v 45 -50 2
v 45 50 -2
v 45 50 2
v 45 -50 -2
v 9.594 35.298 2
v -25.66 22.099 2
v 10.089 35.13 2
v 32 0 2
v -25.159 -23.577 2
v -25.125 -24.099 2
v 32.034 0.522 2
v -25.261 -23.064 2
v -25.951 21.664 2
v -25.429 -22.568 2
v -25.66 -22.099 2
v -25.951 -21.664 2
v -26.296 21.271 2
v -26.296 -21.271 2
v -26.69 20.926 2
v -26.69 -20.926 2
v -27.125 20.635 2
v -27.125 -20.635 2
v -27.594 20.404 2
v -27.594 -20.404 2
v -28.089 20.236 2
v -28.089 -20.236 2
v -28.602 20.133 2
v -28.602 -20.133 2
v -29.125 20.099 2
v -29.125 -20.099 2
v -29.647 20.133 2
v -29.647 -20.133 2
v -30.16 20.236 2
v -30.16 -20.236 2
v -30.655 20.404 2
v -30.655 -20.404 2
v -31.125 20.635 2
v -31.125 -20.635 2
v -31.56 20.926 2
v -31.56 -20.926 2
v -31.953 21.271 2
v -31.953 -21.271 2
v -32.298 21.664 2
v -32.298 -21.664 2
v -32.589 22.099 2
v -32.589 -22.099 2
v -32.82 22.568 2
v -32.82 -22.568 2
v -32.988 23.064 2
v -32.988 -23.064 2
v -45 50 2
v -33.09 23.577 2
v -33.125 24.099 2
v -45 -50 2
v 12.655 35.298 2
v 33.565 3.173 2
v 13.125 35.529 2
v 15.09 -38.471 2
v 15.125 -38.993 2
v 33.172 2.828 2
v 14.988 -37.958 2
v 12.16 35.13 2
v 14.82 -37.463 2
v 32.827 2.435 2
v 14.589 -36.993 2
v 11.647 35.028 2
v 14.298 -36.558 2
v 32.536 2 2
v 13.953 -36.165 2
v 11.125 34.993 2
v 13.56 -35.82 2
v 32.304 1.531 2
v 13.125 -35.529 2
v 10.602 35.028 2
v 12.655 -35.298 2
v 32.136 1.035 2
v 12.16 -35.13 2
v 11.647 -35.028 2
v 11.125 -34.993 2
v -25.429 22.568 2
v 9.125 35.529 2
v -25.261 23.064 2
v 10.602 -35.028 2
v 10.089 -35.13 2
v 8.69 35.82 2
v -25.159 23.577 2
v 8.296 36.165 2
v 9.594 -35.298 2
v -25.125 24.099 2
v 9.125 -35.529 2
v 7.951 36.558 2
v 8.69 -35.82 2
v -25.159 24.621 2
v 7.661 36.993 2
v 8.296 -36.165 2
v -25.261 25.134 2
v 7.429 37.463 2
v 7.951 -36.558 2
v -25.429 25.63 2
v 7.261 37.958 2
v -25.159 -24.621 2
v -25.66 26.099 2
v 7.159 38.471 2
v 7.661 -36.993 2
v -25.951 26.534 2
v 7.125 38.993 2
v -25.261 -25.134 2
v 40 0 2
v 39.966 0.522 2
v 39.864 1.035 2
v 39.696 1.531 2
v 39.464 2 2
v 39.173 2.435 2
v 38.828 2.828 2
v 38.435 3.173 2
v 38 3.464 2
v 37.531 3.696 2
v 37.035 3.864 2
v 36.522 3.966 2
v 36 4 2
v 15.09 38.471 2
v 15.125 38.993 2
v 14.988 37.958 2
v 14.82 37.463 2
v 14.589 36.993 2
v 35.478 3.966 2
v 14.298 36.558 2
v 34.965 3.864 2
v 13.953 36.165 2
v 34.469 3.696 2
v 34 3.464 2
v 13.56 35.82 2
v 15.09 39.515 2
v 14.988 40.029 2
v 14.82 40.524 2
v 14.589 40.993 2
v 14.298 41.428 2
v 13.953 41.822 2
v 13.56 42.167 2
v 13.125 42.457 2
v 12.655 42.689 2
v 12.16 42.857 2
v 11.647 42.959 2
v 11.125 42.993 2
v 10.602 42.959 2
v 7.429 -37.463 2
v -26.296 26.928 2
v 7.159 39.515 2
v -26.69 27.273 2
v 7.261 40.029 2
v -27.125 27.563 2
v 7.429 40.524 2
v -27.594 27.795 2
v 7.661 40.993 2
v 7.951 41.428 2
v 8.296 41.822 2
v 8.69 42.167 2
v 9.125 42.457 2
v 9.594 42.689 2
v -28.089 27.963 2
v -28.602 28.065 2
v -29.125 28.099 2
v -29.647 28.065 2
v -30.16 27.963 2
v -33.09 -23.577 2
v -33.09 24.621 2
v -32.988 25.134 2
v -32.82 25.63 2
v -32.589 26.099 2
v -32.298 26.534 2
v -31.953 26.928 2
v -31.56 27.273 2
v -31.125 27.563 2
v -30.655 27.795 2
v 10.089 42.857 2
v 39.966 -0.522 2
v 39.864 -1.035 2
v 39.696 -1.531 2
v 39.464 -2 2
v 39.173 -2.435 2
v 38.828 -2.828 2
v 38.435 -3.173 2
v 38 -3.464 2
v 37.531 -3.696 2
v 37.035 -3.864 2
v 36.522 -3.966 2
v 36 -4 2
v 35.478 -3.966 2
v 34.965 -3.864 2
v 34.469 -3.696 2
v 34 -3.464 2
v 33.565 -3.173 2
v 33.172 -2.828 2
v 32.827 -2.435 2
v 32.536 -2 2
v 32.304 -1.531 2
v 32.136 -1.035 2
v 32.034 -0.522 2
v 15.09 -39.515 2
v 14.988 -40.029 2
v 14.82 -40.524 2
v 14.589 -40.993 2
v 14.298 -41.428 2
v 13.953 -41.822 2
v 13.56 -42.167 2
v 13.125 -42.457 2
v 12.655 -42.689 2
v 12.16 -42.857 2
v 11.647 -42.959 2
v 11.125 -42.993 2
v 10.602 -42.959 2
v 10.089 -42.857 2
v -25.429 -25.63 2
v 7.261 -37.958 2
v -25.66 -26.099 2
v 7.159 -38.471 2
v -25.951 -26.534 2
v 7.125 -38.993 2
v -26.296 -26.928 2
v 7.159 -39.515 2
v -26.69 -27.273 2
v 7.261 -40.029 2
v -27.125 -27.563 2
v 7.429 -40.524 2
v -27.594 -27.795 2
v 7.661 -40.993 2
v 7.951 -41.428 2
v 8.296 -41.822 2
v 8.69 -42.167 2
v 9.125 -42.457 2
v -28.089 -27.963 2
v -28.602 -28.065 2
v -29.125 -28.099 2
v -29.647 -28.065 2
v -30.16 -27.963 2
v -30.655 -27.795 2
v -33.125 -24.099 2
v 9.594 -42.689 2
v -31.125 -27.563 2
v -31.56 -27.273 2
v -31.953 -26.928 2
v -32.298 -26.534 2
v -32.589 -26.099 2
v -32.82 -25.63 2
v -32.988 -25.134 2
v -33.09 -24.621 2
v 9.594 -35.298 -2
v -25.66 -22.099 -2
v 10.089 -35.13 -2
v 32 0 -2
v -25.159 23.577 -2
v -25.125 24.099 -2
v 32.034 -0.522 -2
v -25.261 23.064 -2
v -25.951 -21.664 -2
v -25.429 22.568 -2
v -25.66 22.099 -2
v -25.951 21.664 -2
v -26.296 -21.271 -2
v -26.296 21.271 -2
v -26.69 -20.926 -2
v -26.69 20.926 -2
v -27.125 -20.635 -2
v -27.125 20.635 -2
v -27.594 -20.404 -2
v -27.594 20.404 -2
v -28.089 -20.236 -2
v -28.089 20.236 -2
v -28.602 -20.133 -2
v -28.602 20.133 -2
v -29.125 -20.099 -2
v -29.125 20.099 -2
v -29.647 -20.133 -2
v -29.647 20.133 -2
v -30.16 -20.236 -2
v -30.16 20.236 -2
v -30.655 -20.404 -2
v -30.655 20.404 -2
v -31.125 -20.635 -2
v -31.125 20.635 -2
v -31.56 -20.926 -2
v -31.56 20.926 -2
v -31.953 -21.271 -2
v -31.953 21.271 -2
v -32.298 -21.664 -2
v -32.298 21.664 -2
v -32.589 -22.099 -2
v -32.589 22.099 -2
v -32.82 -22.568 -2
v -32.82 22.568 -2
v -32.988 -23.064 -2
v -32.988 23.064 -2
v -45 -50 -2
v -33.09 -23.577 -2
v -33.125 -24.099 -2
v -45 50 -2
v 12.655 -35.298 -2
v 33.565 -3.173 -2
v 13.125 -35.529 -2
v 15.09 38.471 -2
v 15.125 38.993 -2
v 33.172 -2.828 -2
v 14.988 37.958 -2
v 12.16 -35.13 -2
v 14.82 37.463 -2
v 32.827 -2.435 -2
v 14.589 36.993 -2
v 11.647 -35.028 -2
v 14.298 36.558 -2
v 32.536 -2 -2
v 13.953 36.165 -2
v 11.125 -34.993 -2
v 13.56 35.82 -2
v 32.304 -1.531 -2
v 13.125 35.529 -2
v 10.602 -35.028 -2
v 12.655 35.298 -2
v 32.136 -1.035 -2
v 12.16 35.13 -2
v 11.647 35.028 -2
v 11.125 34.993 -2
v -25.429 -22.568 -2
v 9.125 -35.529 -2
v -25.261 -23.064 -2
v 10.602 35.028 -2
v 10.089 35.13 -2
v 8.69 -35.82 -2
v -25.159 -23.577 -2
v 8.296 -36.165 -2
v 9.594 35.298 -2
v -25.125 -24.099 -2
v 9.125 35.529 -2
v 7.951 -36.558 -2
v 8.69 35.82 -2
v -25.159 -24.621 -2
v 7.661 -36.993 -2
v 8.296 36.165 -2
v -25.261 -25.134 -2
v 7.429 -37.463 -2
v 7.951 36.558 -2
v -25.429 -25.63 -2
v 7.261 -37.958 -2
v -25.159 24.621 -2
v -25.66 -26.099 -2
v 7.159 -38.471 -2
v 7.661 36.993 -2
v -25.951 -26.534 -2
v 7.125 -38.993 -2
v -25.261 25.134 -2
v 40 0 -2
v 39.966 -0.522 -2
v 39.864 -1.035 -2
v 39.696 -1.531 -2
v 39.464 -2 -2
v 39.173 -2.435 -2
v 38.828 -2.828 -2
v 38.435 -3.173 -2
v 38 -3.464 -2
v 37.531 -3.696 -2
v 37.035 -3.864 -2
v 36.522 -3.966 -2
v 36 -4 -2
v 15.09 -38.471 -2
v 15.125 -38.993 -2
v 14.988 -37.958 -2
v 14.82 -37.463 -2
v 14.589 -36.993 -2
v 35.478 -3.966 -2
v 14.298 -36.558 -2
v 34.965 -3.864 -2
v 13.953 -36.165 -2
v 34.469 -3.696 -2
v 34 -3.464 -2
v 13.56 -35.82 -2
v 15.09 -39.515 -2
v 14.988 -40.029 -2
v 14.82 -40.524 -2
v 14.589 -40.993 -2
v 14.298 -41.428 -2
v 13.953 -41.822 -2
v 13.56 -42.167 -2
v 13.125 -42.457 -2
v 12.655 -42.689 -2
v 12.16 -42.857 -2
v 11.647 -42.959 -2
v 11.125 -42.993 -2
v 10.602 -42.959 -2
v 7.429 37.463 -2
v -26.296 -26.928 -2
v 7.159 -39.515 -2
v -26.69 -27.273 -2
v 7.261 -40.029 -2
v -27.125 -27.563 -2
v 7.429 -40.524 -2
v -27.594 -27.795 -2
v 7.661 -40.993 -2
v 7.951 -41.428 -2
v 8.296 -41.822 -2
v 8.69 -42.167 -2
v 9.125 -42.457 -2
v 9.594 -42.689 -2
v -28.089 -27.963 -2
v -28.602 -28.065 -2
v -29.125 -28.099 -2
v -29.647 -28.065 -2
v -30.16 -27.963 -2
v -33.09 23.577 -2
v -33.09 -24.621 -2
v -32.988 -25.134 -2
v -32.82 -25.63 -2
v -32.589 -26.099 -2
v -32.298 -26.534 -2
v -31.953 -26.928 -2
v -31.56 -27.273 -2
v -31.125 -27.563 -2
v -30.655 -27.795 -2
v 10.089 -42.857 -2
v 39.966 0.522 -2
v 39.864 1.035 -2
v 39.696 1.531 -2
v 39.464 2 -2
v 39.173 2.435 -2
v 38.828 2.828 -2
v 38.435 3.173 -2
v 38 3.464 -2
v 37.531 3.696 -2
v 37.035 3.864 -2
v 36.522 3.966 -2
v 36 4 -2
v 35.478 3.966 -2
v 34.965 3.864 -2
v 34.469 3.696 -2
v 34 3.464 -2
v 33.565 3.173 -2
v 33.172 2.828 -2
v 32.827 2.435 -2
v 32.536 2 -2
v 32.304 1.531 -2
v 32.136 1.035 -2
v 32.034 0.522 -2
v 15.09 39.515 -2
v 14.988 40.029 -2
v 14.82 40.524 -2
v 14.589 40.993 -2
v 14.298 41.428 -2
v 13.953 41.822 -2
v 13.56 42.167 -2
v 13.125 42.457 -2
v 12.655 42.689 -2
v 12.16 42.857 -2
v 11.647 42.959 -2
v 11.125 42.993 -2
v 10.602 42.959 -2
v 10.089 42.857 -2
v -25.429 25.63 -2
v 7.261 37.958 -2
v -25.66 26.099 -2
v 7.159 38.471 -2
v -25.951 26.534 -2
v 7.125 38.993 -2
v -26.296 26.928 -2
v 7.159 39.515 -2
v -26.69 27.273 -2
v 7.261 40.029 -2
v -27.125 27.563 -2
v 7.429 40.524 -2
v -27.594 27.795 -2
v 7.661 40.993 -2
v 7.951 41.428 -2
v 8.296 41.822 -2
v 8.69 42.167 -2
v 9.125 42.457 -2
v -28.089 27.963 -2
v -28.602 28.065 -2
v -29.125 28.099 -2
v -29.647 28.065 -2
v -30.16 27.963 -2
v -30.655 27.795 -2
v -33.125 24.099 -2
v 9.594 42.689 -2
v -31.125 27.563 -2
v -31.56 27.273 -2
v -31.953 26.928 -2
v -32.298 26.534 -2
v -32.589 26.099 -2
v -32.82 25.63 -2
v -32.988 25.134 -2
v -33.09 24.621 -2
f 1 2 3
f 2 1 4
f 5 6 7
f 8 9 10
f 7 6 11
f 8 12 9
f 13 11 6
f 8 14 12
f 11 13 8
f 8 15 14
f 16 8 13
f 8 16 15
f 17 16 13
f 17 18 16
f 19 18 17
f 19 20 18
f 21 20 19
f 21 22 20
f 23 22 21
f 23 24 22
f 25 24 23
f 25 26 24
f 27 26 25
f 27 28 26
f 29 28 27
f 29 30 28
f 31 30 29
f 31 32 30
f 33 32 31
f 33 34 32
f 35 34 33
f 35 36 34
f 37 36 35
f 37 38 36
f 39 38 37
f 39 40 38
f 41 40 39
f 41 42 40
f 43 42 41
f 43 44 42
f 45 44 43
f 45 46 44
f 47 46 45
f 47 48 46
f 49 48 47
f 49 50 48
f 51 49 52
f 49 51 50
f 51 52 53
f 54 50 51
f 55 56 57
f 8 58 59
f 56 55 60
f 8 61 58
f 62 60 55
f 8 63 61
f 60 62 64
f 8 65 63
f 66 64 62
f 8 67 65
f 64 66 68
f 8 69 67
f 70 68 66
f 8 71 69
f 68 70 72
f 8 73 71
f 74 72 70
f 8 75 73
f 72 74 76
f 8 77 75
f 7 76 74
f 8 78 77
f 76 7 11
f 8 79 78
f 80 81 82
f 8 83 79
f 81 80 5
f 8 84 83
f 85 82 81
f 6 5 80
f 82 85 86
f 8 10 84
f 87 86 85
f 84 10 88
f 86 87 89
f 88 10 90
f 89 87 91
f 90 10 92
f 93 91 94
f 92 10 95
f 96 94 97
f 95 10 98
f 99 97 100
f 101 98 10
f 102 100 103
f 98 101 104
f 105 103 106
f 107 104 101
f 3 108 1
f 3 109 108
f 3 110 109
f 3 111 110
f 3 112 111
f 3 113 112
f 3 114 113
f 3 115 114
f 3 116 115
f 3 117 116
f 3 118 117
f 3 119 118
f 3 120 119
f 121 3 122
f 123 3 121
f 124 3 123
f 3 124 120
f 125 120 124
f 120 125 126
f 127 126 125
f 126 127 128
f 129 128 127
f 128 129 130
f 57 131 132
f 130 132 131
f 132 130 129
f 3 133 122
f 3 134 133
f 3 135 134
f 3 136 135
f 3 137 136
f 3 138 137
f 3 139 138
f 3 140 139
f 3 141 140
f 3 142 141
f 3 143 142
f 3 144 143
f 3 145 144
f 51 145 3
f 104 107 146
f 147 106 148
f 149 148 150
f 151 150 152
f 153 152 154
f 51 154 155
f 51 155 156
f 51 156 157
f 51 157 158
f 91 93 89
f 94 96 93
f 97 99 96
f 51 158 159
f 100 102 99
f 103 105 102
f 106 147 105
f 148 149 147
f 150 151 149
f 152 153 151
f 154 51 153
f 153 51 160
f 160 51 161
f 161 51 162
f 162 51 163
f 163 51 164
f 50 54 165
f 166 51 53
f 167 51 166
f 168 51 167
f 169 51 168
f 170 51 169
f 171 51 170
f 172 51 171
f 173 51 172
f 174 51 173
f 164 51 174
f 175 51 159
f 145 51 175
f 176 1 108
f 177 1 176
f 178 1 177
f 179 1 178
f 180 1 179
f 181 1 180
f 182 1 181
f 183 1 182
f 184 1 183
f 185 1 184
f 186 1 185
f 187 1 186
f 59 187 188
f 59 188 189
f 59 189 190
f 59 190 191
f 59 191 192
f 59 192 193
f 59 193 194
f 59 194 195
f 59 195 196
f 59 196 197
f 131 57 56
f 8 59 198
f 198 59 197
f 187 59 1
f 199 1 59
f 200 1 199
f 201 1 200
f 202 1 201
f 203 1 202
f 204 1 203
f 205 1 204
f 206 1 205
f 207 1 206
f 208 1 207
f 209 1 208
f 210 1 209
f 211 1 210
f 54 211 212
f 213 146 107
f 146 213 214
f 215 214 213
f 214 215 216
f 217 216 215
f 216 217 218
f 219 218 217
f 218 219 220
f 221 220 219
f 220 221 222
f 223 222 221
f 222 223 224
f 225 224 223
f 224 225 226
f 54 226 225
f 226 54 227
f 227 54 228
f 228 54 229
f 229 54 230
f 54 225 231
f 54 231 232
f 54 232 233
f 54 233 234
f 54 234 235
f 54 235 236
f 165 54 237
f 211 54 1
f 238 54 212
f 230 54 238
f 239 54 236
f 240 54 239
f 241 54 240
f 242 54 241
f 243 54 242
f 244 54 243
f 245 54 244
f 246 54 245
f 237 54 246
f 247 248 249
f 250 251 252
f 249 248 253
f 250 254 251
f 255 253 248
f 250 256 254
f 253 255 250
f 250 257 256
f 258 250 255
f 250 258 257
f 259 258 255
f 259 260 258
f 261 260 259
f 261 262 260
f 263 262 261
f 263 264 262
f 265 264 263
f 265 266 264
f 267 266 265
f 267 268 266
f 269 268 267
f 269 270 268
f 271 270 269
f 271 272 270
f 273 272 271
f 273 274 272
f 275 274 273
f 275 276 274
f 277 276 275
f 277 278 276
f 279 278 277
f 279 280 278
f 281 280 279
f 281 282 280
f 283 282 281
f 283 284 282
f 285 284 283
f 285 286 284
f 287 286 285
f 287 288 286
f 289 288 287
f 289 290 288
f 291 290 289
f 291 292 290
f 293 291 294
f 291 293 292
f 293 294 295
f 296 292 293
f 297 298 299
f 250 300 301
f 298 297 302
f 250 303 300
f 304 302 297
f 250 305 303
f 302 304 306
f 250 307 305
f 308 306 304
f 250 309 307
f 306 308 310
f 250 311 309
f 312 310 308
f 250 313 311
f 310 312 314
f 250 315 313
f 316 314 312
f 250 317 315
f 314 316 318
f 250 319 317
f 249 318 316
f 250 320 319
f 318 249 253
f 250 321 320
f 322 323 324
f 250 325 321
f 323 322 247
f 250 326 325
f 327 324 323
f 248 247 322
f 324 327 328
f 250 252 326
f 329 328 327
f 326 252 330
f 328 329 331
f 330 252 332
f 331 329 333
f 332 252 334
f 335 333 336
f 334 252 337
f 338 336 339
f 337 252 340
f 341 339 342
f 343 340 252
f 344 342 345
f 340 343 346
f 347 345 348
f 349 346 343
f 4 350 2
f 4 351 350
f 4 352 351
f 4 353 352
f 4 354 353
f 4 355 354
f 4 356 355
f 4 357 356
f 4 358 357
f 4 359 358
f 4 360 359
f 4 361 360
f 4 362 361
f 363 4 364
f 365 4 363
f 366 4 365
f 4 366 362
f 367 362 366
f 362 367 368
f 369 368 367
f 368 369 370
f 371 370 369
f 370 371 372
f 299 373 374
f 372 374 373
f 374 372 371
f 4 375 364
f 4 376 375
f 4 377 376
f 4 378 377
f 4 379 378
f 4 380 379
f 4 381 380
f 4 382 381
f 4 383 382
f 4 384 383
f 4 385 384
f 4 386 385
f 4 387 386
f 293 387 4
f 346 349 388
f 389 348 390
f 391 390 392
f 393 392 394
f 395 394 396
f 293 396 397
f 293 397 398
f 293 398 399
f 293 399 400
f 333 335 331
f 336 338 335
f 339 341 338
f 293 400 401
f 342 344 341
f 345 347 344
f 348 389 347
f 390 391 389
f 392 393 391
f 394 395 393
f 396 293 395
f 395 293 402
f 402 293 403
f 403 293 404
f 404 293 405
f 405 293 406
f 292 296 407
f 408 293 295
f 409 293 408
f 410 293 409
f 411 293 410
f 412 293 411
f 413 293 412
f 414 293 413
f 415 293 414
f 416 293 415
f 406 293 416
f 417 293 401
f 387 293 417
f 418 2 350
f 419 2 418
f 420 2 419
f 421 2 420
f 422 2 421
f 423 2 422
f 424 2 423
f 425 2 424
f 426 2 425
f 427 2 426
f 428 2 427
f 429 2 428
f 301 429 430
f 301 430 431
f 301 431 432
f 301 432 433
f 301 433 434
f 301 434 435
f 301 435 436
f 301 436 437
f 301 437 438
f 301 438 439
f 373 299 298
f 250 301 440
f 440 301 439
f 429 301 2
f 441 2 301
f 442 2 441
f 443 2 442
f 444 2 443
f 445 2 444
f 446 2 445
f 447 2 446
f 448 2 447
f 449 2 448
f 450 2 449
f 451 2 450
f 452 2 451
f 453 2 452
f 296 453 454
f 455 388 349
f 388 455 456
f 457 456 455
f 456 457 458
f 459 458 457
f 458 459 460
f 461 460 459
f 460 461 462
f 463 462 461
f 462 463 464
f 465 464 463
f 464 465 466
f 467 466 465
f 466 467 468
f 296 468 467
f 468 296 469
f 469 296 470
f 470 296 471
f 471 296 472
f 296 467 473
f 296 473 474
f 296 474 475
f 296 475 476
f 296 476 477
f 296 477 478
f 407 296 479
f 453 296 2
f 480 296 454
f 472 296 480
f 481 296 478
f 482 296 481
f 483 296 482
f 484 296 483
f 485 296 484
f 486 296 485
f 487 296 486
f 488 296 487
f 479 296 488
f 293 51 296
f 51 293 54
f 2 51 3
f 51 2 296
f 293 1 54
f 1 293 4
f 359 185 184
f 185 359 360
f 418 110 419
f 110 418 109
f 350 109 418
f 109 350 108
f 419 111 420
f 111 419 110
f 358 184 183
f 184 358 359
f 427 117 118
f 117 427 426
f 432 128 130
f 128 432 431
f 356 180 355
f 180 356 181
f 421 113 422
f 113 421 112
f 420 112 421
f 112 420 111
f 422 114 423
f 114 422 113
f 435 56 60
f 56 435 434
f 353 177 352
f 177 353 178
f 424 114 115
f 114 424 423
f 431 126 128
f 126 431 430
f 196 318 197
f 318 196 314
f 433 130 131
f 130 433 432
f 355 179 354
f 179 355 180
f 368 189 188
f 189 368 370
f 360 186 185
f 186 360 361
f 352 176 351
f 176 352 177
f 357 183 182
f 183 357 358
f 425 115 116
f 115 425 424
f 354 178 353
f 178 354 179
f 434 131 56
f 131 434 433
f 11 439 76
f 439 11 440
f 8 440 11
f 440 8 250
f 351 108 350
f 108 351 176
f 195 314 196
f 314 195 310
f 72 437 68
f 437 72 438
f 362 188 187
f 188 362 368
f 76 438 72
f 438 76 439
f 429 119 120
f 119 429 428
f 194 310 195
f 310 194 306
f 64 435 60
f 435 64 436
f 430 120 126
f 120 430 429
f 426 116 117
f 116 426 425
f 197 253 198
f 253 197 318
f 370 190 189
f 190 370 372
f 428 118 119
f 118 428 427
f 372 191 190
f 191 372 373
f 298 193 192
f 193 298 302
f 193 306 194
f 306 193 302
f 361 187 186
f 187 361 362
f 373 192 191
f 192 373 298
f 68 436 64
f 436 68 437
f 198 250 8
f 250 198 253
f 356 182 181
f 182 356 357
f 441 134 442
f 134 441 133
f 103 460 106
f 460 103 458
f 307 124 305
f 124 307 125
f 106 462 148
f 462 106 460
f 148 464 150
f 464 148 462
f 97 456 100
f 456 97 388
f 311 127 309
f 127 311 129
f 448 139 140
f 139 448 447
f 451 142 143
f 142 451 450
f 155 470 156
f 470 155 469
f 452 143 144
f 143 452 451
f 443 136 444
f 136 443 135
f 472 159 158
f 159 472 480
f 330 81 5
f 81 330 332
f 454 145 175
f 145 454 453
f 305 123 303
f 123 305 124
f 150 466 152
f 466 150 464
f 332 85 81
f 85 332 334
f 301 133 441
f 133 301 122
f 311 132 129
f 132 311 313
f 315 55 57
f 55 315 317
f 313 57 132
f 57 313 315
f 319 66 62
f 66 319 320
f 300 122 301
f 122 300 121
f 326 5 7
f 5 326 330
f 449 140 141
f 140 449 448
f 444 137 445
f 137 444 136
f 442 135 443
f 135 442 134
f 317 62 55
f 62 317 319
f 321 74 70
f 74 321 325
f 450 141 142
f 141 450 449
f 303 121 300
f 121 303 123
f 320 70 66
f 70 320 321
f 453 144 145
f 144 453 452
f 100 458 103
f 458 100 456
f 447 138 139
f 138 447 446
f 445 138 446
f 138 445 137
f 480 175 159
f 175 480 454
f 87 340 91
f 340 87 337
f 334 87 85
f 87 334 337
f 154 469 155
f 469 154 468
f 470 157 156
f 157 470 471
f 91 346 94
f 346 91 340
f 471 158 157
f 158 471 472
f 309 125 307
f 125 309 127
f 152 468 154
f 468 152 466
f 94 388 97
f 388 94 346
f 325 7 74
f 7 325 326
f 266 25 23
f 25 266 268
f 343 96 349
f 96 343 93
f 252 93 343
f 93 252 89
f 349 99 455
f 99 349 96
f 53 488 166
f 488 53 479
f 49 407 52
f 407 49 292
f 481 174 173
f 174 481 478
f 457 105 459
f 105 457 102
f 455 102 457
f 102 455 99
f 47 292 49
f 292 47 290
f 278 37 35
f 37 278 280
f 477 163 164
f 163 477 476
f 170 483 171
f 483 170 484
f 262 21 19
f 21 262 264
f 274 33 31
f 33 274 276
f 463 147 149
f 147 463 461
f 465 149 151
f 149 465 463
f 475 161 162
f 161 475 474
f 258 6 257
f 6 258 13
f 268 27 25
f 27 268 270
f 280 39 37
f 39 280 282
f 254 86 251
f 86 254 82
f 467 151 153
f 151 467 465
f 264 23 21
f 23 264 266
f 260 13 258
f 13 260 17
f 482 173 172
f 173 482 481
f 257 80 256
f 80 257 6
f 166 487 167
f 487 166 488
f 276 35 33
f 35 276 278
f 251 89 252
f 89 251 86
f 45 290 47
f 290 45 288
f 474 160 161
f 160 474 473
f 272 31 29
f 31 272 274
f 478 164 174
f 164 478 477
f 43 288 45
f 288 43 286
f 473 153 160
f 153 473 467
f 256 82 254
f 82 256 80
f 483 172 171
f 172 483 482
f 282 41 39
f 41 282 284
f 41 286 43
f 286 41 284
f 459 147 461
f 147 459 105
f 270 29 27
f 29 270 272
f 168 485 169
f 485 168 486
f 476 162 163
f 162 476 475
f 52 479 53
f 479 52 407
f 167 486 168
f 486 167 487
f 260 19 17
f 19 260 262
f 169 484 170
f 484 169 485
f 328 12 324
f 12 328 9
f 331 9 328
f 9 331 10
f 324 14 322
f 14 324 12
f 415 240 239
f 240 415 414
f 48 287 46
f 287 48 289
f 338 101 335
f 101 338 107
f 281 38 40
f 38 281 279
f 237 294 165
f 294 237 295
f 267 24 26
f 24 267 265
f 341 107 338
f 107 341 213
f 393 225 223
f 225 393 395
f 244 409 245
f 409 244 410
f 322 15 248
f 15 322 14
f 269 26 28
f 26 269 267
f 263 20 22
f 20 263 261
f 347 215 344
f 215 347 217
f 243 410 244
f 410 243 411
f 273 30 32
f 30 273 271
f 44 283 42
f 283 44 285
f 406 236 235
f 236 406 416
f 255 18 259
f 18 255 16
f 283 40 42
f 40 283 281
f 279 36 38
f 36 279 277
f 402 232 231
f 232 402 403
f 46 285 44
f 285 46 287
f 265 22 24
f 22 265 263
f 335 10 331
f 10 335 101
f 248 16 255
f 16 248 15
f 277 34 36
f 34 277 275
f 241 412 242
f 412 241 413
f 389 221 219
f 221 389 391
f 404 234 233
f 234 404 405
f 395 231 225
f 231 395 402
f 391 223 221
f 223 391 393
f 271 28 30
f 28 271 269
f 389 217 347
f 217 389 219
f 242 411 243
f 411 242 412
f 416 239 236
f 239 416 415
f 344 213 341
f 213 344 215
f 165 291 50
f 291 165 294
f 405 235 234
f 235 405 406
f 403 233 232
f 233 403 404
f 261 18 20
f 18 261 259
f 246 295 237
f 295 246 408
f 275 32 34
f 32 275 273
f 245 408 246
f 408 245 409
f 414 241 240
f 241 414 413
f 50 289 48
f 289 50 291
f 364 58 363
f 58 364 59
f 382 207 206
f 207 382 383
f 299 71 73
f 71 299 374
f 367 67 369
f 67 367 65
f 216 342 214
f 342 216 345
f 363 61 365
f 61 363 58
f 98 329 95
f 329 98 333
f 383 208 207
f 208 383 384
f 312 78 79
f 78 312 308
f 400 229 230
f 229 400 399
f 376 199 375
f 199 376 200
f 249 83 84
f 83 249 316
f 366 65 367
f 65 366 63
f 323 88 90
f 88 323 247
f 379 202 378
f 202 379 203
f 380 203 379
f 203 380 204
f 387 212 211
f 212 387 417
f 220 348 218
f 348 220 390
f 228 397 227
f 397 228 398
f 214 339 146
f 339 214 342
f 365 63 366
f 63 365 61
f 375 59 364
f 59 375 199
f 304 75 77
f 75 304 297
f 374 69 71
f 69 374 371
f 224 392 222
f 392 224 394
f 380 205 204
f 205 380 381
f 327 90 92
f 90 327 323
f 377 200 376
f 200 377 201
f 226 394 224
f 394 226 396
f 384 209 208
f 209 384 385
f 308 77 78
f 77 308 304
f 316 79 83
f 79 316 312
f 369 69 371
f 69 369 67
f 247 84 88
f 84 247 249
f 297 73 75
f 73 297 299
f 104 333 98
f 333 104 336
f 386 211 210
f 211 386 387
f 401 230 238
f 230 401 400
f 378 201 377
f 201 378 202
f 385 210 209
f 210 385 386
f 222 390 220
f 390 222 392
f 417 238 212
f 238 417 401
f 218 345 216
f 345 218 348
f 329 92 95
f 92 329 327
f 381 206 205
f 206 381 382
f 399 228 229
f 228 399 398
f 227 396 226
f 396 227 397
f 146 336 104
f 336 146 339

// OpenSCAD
// ========================================
// a 90 x 100 x 4 mm plate with five 8 mm holes
// NeuroCAD canonical IR; dimensions are millimetres
// ========================================
$fn = 48;

difference() {
  cube(size=[90, 100, 4], center=true);
  translate([36, 0, 0]) {
    cylinder(r=4, h=6, center=true);
  }
  translate([11.1246117974981, 38.9933171681013, 0]) {
    cylinder(r=4, h=6, center=true);
  }
  translate([-29.1246117974981, 24.0991953439914, 0]) {
    cylinder(r=4, h=6, center=true);
  }
  translate([-29.1246117974981, -24.0991953439914, 0]) {
    cylinder(r=4, h=6, center=true);
  }
  translate([11.1246117974981, -38.9933171681013, 0]) {
    cylinder(r=4, h=6, center=true);
  }
}
